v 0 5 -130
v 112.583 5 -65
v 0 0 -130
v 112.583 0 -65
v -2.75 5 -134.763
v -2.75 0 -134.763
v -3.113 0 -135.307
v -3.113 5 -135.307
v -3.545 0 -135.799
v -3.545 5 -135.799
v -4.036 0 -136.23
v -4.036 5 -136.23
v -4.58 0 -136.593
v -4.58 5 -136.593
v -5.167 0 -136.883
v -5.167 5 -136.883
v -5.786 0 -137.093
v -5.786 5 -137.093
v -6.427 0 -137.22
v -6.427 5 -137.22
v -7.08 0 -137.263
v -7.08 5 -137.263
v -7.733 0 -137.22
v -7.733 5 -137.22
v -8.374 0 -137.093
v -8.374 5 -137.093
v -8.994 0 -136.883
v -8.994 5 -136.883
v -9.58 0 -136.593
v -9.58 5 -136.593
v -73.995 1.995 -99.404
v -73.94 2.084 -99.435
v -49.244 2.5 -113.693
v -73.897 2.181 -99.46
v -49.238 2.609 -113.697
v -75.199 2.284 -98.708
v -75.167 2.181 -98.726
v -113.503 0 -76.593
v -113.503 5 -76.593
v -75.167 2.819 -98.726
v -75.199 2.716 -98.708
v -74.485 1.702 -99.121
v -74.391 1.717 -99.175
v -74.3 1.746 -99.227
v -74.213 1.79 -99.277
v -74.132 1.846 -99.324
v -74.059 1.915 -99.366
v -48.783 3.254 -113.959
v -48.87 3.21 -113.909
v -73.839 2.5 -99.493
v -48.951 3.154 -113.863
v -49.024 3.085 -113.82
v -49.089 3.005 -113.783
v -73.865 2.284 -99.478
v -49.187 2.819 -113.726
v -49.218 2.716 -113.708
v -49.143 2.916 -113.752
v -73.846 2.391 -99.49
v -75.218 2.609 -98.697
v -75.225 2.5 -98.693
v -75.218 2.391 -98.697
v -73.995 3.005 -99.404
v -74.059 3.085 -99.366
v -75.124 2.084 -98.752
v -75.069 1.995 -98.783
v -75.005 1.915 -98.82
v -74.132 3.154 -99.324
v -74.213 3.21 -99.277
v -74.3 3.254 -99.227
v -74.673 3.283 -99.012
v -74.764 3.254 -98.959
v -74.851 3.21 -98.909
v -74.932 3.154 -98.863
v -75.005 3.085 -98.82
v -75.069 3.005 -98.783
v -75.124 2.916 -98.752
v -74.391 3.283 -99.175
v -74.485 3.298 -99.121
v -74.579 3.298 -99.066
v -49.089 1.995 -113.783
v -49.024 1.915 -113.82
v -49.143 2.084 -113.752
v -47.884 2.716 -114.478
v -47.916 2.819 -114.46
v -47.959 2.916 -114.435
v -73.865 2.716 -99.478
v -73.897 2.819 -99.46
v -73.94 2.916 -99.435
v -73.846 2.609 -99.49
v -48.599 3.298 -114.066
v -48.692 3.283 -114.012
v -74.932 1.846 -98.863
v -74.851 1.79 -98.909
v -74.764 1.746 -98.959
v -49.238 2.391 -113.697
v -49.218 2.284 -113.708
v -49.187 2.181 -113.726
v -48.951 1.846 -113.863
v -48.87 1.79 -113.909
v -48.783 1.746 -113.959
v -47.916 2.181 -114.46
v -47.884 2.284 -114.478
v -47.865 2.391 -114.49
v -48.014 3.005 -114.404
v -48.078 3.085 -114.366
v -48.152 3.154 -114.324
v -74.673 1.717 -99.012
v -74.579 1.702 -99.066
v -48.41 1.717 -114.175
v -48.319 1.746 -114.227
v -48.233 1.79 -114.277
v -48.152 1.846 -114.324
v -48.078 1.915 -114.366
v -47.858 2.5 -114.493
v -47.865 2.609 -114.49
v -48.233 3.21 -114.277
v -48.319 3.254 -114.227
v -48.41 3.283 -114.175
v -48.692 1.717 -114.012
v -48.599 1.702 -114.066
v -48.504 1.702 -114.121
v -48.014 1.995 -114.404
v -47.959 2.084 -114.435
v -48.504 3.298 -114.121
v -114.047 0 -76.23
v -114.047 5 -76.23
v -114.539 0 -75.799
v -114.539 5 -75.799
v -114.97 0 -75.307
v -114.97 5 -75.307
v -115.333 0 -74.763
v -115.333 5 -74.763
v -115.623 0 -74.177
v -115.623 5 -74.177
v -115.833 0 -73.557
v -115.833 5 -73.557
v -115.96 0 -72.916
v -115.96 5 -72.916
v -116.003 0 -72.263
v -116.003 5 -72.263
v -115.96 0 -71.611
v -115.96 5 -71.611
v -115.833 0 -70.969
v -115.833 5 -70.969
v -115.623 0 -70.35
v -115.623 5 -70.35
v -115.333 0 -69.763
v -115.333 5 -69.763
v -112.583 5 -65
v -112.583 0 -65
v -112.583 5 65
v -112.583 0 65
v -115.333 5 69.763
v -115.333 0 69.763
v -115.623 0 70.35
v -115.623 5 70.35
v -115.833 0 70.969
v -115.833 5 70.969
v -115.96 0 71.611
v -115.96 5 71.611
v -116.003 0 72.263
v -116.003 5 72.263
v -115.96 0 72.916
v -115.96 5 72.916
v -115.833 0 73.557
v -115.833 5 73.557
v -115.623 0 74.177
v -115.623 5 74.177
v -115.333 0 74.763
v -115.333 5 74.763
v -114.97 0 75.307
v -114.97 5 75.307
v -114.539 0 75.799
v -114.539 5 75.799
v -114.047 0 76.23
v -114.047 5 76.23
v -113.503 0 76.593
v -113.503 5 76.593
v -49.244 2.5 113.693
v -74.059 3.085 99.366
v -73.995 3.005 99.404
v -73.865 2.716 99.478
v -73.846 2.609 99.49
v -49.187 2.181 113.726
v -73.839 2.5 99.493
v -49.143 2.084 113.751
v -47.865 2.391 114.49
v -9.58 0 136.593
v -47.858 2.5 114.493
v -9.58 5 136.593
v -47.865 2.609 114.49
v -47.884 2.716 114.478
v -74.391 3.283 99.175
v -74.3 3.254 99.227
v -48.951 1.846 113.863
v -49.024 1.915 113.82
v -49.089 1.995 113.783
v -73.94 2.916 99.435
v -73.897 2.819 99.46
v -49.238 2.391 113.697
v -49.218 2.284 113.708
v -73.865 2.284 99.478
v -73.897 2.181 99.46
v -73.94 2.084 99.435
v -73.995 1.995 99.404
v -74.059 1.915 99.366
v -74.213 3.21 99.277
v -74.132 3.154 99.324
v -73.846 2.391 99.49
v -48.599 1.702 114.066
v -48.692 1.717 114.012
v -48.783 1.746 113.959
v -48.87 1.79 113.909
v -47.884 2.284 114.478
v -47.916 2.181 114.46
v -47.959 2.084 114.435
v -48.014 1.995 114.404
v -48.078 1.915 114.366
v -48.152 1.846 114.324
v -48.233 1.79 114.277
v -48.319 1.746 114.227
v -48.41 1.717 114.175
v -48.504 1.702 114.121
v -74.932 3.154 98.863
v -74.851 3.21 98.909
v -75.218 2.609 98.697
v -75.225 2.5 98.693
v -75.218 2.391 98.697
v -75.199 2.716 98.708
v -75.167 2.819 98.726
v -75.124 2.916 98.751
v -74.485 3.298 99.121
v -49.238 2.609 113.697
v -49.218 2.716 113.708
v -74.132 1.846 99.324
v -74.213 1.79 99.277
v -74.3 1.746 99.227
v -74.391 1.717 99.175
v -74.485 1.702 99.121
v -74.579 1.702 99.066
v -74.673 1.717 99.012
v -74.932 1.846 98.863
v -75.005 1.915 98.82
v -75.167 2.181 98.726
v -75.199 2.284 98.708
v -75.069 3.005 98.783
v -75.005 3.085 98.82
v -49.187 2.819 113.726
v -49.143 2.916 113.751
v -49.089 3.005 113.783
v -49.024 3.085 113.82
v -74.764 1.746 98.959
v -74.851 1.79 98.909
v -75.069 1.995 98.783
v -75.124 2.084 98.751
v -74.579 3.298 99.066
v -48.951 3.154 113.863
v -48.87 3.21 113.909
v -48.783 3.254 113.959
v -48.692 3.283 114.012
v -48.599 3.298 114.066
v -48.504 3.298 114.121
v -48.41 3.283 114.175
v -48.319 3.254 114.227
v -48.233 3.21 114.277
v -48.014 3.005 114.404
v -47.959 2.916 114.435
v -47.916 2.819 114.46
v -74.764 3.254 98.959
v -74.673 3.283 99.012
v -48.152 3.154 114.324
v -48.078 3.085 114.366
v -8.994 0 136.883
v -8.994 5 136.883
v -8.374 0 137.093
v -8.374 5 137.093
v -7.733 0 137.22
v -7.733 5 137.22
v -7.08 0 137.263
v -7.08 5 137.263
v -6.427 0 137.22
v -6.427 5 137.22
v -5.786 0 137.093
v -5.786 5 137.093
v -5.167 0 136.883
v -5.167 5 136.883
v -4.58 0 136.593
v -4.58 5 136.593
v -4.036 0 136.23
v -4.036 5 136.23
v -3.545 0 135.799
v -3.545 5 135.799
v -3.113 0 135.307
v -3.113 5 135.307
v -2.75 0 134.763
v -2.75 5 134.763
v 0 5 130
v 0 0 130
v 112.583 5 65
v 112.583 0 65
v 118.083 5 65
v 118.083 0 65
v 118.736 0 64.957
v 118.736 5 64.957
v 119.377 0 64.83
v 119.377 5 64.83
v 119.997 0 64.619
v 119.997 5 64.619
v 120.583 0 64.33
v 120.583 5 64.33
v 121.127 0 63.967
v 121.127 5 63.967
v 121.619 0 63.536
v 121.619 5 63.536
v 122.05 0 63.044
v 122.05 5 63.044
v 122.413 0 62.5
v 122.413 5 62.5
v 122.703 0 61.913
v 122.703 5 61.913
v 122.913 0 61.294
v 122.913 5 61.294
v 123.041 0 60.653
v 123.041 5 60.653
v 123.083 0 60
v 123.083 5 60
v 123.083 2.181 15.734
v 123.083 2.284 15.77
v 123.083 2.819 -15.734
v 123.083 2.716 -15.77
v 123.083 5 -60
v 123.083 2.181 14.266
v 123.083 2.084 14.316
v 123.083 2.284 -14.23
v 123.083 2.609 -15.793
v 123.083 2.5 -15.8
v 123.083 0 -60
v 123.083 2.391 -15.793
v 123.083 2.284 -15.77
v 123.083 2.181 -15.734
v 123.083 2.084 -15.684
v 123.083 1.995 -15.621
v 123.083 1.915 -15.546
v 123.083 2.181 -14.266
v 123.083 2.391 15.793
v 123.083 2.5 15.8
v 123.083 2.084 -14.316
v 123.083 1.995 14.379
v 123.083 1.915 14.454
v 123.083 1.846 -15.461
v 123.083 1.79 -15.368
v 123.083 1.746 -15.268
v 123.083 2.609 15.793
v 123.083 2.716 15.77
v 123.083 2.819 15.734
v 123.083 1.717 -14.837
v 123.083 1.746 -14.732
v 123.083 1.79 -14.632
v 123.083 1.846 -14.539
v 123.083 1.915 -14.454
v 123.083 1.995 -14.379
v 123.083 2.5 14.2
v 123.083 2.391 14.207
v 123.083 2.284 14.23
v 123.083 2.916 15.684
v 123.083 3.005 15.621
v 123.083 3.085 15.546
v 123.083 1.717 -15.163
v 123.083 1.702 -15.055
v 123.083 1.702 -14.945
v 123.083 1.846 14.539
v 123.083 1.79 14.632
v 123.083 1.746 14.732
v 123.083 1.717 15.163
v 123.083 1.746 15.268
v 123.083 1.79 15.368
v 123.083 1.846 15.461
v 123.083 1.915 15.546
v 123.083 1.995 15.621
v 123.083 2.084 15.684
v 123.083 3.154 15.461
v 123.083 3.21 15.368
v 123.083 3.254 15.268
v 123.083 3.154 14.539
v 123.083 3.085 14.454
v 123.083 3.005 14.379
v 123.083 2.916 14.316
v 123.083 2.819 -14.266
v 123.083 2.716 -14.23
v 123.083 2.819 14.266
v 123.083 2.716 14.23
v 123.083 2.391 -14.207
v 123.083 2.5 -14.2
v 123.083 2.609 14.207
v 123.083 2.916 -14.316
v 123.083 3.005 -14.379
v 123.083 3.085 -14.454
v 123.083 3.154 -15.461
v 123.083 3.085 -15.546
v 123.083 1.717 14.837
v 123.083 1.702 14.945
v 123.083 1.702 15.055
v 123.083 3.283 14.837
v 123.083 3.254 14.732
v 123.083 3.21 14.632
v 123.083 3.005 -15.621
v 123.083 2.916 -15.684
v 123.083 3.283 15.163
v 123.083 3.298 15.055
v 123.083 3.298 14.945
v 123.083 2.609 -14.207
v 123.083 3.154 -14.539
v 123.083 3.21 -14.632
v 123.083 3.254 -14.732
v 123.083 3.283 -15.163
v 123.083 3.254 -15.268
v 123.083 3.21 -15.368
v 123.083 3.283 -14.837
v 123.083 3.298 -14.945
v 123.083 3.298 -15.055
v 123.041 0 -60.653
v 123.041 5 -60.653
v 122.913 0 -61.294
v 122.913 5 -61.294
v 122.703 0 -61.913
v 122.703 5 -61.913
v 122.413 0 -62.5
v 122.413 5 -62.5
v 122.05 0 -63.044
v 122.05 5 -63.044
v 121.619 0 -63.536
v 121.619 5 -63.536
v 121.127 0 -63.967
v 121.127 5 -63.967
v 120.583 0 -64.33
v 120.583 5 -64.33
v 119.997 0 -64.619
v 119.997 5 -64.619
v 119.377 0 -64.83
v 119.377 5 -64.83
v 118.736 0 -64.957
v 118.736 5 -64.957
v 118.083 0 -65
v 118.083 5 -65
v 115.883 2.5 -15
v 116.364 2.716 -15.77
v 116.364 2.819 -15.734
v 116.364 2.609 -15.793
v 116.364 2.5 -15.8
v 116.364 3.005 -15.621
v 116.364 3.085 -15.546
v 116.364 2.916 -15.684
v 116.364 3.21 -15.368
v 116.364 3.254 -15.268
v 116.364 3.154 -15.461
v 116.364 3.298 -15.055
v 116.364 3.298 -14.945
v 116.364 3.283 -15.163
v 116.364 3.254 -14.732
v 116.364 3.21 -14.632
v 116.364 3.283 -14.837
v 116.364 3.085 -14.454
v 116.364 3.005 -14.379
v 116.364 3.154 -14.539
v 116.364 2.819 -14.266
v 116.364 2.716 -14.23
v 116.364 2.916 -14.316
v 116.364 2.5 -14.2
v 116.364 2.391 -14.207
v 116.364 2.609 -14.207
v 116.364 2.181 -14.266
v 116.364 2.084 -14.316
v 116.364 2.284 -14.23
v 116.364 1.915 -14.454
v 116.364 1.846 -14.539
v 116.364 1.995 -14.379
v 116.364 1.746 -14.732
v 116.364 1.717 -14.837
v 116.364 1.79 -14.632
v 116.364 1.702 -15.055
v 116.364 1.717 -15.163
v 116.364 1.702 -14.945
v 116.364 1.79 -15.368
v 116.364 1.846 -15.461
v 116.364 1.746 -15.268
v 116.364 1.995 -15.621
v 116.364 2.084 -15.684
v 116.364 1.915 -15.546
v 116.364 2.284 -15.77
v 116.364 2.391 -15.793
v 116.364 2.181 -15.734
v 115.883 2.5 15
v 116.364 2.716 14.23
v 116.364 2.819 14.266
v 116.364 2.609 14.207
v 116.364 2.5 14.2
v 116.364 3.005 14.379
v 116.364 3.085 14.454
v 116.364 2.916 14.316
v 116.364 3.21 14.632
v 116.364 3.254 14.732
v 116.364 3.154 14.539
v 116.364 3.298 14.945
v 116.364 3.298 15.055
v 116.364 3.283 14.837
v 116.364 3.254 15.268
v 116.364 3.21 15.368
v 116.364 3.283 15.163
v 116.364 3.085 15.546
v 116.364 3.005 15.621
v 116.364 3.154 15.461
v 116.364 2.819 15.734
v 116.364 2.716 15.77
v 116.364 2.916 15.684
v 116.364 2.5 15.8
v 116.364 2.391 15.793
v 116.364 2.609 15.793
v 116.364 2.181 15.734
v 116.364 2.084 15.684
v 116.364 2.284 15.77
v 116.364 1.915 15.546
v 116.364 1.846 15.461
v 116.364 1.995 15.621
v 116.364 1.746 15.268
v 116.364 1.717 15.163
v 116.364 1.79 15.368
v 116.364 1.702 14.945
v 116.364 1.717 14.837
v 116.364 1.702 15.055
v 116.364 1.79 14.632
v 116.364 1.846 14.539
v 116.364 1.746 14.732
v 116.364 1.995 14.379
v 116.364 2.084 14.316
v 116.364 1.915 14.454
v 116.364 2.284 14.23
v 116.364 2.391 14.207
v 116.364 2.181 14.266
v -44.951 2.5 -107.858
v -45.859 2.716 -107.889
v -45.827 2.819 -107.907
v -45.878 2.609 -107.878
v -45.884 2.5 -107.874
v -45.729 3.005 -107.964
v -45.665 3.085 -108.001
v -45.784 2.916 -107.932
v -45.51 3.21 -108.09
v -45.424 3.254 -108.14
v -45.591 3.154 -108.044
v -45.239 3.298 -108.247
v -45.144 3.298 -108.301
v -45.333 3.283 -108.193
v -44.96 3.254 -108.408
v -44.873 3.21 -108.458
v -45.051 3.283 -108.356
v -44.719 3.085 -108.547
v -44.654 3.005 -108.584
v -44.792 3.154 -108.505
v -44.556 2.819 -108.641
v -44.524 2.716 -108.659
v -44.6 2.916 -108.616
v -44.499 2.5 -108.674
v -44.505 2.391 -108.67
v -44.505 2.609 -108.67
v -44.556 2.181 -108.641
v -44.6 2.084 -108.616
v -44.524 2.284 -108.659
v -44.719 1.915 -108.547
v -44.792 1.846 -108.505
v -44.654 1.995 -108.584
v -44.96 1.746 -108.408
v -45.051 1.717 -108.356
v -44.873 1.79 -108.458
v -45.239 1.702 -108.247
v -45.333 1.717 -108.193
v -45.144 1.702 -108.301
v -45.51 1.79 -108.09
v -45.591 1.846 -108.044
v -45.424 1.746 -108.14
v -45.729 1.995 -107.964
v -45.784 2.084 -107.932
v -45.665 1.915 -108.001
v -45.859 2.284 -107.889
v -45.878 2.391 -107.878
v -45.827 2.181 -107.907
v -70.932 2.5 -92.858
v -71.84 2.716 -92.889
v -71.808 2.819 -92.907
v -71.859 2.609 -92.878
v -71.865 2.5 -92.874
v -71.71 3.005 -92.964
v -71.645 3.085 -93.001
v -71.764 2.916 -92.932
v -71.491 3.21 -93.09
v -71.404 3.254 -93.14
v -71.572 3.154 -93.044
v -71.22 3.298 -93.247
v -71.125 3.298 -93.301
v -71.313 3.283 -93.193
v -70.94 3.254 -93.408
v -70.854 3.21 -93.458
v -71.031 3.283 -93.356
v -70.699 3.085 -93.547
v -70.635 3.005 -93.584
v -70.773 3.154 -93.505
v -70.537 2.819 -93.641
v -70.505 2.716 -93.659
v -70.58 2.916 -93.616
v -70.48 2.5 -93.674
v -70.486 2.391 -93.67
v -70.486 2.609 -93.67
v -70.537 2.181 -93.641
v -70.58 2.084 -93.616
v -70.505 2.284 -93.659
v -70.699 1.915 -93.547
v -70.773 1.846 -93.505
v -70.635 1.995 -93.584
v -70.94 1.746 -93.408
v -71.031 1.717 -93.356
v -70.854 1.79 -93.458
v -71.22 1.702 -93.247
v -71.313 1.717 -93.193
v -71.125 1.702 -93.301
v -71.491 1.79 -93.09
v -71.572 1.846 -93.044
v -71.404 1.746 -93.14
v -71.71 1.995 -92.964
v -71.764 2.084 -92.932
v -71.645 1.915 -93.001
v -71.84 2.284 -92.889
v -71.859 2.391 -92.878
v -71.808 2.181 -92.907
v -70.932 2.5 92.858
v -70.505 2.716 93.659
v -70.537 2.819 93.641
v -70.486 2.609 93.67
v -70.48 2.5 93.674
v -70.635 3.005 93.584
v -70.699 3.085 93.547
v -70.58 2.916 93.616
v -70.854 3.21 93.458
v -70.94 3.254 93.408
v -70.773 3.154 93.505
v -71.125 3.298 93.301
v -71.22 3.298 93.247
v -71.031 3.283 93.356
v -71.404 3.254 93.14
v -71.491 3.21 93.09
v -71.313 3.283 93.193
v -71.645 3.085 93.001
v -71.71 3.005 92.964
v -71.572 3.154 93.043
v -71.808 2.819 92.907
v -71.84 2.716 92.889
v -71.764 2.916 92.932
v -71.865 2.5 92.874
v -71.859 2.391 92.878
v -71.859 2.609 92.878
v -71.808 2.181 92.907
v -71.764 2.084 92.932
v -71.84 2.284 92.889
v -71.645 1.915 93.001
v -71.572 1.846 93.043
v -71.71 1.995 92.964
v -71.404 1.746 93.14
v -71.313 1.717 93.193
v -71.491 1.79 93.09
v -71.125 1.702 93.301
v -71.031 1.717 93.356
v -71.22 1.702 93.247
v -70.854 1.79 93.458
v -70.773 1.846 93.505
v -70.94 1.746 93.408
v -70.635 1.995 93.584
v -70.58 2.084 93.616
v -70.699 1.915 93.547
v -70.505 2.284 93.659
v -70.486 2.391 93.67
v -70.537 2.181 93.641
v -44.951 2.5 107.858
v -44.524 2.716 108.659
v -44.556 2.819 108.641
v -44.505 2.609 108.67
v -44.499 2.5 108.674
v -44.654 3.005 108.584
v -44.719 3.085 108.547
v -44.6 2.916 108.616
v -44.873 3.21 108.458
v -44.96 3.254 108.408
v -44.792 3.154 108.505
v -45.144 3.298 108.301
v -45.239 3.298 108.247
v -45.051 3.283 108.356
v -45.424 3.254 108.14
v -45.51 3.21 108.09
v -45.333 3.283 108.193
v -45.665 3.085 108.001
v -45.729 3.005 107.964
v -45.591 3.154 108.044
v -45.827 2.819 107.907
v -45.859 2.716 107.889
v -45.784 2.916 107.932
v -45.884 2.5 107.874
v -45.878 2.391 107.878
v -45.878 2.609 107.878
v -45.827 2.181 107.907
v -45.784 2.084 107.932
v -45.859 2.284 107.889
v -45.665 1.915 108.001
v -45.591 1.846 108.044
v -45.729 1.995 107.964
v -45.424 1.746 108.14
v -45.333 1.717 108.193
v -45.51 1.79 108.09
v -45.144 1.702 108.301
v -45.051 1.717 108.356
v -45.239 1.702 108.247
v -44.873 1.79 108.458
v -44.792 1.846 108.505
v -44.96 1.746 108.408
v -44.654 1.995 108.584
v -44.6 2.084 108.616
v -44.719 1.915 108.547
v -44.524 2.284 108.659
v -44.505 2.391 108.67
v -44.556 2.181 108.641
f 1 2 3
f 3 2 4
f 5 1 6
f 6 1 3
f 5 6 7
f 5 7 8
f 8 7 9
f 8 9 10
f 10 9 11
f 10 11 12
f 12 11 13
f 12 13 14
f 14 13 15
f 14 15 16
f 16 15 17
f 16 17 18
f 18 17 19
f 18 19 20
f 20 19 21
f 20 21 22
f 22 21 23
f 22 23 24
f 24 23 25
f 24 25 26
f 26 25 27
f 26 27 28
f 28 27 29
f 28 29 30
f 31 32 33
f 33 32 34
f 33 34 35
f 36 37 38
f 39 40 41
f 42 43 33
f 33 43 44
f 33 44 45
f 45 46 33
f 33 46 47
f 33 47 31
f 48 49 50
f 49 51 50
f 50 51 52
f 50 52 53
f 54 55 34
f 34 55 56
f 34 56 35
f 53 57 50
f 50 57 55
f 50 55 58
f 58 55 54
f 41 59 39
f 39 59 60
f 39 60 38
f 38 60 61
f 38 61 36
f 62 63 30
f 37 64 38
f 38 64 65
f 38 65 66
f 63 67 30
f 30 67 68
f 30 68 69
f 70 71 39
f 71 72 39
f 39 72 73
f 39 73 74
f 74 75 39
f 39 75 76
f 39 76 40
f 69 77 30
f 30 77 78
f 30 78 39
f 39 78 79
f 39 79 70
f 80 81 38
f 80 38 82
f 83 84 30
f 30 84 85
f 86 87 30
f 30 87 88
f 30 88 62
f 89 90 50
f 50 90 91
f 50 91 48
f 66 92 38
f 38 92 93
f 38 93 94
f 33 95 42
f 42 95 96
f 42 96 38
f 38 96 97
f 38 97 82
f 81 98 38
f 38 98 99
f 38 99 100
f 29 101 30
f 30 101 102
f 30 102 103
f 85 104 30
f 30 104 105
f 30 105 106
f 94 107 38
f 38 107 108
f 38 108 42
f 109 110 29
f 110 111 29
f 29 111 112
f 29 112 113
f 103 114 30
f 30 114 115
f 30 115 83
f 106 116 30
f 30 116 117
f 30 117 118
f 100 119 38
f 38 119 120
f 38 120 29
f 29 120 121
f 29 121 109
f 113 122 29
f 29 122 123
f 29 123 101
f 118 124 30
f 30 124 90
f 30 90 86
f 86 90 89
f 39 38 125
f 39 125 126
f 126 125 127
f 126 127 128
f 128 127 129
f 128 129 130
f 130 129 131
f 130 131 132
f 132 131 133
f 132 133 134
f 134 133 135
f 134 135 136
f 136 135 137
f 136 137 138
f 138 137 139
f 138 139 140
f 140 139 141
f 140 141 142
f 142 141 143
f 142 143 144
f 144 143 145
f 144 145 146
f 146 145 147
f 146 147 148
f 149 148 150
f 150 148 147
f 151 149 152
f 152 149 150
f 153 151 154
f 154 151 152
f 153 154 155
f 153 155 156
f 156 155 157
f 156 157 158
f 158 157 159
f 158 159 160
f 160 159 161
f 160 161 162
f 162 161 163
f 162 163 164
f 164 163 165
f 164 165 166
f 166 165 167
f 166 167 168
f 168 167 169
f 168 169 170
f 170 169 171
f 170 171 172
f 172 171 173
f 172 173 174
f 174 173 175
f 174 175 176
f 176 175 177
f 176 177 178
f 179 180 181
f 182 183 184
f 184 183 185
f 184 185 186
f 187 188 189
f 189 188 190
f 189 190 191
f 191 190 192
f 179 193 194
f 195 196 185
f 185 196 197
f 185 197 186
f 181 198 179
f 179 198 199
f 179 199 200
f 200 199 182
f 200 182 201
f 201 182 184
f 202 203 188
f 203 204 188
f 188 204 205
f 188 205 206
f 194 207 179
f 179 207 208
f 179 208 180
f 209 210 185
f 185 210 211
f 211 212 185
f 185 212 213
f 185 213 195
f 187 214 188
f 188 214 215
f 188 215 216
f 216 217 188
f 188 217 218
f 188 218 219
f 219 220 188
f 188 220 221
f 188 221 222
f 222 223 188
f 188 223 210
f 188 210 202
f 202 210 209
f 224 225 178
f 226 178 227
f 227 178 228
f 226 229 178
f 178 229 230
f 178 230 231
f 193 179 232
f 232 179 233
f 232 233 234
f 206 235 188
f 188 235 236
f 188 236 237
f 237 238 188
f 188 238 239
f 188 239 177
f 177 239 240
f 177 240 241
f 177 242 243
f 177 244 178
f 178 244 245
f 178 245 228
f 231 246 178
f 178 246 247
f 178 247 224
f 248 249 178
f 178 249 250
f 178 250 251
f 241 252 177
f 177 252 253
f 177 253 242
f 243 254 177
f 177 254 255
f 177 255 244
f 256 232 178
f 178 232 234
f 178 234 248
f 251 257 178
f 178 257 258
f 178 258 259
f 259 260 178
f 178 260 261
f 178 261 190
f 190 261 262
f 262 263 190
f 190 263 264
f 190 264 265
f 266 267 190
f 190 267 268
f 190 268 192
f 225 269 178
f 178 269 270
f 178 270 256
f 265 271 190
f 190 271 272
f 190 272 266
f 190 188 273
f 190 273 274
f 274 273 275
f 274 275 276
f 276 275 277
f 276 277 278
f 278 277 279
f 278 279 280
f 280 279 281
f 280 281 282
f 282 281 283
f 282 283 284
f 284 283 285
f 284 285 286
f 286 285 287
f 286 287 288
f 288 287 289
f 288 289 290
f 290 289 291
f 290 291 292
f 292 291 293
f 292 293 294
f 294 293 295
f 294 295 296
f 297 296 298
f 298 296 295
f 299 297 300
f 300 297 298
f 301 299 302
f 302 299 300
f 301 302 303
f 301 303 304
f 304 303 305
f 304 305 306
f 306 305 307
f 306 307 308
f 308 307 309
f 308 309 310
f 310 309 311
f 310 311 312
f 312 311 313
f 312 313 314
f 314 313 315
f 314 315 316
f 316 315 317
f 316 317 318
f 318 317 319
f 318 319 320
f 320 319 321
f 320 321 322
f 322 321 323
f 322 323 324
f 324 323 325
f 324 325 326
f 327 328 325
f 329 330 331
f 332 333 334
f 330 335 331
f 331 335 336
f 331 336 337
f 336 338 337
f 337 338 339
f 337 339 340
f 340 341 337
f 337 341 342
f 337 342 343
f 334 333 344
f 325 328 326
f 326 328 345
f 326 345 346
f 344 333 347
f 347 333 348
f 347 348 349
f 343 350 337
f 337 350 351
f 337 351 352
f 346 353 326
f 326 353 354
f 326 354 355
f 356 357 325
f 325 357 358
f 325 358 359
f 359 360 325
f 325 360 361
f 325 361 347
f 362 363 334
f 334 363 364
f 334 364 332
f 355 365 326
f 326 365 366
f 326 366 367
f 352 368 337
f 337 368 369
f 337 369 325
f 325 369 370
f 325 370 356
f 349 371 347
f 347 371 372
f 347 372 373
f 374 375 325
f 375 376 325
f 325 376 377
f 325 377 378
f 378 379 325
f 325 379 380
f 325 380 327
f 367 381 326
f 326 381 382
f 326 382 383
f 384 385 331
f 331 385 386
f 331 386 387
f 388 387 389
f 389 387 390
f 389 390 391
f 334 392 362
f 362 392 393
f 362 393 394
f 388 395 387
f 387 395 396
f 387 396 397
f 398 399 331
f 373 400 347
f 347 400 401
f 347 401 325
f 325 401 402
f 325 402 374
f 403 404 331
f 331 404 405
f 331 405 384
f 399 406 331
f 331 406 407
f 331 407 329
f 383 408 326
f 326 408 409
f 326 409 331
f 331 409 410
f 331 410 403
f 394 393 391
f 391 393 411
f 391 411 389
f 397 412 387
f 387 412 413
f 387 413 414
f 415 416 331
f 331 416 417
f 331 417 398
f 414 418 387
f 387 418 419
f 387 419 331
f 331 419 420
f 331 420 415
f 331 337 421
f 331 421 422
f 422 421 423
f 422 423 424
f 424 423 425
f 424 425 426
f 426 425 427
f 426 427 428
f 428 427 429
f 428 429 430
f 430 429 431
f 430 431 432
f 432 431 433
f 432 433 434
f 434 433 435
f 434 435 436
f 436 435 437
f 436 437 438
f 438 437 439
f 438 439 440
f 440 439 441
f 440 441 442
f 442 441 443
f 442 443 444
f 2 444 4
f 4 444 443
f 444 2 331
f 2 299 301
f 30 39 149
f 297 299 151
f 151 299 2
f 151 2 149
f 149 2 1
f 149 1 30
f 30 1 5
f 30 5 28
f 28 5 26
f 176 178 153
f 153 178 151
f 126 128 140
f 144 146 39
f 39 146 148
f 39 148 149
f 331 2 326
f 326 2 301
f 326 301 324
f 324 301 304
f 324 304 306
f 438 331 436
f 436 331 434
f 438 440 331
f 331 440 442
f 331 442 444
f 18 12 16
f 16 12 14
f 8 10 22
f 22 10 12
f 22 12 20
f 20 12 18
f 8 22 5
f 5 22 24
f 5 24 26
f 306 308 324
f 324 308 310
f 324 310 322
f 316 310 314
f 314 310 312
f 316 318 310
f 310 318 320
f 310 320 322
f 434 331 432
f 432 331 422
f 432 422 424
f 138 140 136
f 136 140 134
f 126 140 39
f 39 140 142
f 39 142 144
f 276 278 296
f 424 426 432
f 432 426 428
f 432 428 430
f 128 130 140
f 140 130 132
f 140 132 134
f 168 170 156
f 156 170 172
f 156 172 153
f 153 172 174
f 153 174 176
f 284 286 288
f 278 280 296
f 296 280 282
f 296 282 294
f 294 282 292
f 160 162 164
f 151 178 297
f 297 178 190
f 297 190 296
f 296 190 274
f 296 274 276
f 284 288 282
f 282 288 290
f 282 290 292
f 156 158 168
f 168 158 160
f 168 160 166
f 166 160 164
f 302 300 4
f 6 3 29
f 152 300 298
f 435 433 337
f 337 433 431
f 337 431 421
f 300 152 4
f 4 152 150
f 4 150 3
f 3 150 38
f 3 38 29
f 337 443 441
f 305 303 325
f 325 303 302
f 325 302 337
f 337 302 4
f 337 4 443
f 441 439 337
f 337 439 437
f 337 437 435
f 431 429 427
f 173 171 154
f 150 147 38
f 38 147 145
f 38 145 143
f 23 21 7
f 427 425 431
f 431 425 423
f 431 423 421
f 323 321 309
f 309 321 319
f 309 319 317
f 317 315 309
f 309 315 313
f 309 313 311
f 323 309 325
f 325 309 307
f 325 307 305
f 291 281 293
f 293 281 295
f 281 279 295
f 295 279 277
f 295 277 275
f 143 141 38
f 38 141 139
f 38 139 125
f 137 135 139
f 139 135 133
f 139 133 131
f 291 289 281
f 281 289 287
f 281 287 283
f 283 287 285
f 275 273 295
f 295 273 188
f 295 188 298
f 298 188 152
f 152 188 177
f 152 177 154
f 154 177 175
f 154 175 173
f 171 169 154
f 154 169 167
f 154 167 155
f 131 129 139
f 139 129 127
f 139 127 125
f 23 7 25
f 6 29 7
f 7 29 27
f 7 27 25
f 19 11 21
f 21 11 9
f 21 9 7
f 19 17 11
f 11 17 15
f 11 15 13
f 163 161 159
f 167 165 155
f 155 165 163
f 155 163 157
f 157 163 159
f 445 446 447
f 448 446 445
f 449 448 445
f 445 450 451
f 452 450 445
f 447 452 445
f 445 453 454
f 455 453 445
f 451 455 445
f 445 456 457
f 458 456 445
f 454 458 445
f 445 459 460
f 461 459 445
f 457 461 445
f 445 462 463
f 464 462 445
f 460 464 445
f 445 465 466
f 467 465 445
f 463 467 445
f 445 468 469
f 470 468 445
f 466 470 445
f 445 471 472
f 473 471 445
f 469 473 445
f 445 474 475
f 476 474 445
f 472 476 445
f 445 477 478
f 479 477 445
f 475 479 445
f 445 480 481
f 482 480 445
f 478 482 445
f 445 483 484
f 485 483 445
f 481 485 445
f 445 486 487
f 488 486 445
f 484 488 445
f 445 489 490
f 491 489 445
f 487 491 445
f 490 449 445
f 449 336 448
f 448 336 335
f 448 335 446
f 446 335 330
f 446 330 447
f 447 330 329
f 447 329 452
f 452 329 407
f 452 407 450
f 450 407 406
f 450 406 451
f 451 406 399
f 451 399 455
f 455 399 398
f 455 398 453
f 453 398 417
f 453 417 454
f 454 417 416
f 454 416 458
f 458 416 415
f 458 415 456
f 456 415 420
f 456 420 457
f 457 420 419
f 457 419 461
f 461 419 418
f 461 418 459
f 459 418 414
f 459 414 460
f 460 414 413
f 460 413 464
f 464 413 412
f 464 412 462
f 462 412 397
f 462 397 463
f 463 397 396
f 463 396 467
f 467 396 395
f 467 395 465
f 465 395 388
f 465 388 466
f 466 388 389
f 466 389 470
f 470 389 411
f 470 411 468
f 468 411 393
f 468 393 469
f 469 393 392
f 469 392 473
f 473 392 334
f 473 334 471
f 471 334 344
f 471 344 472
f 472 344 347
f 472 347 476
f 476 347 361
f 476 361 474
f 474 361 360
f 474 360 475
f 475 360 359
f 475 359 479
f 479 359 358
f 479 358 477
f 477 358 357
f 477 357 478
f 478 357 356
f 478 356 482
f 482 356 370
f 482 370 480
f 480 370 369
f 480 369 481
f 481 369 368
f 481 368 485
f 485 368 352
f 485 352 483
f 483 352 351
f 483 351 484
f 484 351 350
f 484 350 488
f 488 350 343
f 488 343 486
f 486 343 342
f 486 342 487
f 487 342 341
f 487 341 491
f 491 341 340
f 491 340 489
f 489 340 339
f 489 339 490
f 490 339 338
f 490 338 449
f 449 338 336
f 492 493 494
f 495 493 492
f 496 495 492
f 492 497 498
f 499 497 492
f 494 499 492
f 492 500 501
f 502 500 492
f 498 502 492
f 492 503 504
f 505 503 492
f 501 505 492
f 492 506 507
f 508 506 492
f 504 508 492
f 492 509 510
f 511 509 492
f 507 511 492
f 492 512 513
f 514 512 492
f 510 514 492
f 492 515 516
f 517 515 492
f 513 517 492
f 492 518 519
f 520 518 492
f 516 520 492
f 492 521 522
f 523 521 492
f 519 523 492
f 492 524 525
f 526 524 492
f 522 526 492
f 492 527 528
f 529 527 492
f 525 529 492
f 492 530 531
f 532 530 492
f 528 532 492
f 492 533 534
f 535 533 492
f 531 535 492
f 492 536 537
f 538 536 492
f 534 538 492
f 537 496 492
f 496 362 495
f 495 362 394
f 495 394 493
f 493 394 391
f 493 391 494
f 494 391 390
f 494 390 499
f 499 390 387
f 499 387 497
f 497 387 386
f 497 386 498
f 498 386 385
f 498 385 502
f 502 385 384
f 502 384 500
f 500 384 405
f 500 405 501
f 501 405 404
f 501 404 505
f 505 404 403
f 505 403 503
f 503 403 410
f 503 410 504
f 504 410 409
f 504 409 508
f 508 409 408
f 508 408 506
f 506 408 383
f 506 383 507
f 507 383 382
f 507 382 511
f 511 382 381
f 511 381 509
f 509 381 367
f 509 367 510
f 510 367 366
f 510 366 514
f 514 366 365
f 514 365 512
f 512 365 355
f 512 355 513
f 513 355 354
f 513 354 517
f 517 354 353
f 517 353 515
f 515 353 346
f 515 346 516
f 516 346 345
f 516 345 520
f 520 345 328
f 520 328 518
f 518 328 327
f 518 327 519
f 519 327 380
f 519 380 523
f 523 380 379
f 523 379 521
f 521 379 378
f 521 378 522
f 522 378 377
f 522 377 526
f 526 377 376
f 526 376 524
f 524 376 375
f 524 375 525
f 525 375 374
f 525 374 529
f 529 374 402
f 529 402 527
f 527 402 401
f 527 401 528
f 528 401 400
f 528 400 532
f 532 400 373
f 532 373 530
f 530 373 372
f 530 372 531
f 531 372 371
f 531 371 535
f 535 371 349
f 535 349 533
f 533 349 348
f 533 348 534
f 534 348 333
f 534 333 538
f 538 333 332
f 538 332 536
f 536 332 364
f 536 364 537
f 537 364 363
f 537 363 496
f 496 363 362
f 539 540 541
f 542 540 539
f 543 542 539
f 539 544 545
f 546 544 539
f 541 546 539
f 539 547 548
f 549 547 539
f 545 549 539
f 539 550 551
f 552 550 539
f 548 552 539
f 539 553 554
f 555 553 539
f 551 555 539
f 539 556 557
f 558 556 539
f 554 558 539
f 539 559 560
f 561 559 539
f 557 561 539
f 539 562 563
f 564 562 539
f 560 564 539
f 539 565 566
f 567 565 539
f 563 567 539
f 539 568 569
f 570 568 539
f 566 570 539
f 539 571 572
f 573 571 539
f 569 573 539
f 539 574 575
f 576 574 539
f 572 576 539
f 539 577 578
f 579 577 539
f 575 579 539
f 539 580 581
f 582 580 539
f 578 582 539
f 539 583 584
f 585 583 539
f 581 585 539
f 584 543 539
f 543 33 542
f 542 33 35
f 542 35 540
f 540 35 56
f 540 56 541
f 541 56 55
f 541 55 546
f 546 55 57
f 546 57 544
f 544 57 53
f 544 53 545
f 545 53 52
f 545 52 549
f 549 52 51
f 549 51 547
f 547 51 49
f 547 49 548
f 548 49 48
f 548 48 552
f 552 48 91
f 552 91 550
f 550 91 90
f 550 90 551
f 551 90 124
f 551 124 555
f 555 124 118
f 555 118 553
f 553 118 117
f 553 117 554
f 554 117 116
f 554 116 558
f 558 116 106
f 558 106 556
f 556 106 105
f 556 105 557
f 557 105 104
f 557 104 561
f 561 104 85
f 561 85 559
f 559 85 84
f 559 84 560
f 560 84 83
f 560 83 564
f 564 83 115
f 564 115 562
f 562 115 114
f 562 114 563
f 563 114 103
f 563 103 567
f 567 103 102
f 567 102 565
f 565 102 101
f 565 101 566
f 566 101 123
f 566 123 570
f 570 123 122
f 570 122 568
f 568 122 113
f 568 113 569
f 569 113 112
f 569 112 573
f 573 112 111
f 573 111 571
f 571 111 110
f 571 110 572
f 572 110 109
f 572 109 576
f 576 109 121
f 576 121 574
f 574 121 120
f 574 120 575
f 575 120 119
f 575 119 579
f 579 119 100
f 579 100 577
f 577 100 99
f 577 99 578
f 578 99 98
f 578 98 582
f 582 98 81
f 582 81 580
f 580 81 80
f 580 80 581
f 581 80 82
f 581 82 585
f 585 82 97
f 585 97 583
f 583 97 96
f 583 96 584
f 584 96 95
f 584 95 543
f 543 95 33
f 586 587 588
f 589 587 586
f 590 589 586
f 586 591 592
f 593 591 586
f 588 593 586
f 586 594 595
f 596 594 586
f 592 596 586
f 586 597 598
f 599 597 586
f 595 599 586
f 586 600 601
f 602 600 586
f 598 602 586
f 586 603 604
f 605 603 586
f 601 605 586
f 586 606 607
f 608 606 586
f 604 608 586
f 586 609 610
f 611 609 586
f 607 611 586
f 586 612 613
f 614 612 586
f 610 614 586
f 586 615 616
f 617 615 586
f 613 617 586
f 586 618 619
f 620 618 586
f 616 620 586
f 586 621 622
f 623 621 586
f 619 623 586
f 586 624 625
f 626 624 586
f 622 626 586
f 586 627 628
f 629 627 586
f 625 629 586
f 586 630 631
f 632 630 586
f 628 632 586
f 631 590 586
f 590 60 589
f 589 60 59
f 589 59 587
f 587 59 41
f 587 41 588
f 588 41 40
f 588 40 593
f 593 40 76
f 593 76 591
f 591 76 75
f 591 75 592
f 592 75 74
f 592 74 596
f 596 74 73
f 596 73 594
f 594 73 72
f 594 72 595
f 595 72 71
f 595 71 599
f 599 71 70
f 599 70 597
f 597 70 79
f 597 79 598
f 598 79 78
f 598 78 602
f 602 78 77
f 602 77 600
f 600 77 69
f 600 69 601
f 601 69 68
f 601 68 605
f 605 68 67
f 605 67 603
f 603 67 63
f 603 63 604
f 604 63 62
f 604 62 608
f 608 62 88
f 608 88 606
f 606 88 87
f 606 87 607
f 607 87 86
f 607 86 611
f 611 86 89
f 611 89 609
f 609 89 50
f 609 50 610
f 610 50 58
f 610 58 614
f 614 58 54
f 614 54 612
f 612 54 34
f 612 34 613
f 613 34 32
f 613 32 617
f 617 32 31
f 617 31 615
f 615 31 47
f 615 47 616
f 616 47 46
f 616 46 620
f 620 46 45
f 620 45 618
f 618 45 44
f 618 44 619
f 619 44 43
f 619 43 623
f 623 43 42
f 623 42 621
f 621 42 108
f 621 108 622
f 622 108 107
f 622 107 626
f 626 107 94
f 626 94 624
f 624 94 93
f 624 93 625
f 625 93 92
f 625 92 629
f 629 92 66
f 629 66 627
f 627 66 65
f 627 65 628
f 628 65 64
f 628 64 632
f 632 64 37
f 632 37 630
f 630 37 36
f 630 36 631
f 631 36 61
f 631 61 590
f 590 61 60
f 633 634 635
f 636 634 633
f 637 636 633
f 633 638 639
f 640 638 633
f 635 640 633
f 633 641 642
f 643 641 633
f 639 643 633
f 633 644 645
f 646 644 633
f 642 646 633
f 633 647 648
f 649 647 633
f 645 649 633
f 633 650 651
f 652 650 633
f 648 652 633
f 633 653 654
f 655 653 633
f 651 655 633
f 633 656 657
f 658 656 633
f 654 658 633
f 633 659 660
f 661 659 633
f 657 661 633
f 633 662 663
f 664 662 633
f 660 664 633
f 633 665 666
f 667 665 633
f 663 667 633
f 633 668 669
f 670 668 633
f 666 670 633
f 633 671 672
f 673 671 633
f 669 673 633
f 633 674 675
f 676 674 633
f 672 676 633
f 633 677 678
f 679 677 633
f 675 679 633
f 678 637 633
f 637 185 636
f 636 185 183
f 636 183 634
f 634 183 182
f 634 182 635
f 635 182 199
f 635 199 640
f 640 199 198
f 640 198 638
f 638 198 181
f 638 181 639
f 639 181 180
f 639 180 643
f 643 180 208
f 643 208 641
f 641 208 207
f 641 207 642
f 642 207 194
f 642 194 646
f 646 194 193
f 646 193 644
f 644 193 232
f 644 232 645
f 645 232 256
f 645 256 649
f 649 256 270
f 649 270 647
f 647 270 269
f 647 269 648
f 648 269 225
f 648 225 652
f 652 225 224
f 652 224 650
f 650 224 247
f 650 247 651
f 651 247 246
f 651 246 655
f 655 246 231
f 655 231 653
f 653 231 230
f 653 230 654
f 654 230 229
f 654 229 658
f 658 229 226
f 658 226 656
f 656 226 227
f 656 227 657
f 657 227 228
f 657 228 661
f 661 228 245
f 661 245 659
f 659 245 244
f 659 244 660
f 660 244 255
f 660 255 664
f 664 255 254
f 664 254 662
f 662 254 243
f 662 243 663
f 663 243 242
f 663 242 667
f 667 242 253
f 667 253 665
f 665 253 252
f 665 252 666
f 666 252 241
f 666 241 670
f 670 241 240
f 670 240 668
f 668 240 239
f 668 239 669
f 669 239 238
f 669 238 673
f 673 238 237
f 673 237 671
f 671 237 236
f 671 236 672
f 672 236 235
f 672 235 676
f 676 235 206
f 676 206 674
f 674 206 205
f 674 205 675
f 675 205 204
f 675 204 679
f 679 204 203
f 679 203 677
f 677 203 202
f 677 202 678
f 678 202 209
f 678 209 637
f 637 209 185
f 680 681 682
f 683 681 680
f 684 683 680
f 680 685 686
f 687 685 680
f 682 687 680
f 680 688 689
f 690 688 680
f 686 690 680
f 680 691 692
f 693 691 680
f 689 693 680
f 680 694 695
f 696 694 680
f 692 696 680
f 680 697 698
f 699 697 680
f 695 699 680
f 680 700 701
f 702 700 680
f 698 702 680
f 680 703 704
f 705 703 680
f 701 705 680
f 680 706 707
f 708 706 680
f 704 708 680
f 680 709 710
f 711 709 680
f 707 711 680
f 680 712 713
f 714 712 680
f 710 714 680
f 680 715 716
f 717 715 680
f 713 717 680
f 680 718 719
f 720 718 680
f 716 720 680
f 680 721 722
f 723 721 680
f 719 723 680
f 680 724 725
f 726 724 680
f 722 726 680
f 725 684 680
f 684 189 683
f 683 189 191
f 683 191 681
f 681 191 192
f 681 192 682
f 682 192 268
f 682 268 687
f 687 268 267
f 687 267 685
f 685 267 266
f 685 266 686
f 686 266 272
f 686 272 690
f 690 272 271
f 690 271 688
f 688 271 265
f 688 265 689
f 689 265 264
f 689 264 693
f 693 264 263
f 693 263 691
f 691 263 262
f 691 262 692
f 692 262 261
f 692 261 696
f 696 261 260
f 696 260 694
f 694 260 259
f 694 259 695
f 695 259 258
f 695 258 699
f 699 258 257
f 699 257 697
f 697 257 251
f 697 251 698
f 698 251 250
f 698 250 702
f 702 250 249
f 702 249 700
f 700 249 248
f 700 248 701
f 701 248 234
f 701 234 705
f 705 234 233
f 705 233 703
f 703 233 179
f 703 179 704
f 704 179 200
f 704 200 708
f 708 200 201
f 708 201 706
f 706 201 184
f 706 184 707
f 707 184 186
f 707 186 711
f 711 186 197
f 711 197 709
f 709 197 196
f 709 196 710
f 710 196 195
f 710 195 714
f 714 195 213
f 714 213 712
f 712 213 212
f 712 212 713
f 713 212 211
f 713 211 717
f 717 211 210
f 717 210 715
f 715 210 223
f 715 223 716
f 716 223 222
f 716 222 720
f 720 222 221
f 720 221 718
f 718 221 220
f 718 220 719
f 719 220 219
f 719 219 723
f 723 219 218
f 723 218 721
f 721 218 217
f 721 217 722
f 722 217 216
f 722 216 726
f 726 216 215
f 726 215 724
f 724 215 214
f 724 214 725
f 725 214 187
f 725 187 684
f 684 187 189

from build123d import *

# Parameters (mm, degrees)
EXTRUDE_1_DEPTH                  = 5
HOLE_WIZARD_M2_1_D               = 1.6
HOLE_WIZARD_M2_1_DEPTH           = 6.719311505
HOLE_WIZARD_M2_1_TIP             = 0.480688495
HOLE_WIZARD_M2_2_D               = 1.6
HOLE_WIZARD_M2_2_DEPTH           = 6.719311505
HOLE_WIZARD_M2_2_TIP             = 0.480688495
HOLE_WIZARD_M2_2_ON_FACE_2_D     = 1.6
HOLE_WIZARD_M2_2_ON_FACE_2_DEPTH = 6.719311505
HOLE_WIZARD_M2_2_ON_FACE_2_TIP   = 0.480688495
HOLE_WIZARD_M2_2_ON_FACE_3_D     = 1.6
HOLE_WIZARD_M2_2_ON_FACE_3_DEPTH = 6.719311505
HOLE_WIZARD_M2_2_ON_FACE_3_TIP   = 0.480688495
HOLE_WIZARD_M2_2_ON_FACE_4_D     = 1.6
HOLE_WIZARD_M2_2_ON_FACE_4_DEPTH = 6.719311505
HOLE_WIZARD_M2_2_ON_FACE_4_TIP   = 0.480688495


with BuildPart() as part:
    # 草图1 → 凸台-拉伸1 (new body)
    with BuildSketch(Plane(origin=(0, 0, 0), x_dir=(1, 0, 0), z_dir=(0, 1, 0))):
        Polygon((-112.583302492, 65), (-112.583302492, -65), (0, -130), (112.583302492, -65), (112.583302492, 65), (0, 130), align=None)
        with BuildLine():
            Line((0, -130), (-112.583302492, -65))
            Line((-112.583302492, -65), (-115.333302492, -69.763139721))
            ThreePointArc((-115.333302492, -69.763139721), (-115.832804605, -73.557234946), (-113.503175473, -76.59326674))
            Line((-113.503175473, -76.59326674), (-9.580127019, -136.59326674))
            ThreePointArc((-9.580127019, -136.59326674), (-5.786031793, -137.092768852), (-2.75, -134.763139721))
            Line((-2.75, -134.763139721), (0, -130))
        make_face()
        with BuildLine():
            Line((-115.333302492, 69.763139721), (-112.583302492, 65))
            Line((-112.583302492, 65), (0, 130))
            Line((0, 130), (-2.75, 134.763139721))
            ThreePointArc((-2.75, 134.763139721), (-5.786031793, 137.092768852), (-9.580127019, 136.59326674))
            Line((-9.580127019, 136.59326674), (-113.503175473, 76.59326674))
            ThreePointArc((-113.503175473, 76.59326674), (-115.832804605, 73.557234946), (-115.333302492, 69.763139721))
        make_face()
        with BuildLine():
            Line((112.583302492, 65), (112.583302492, -65))
            Line((112.583302492, -65), (118.083302492, -65))
            ThreePointArc((118.083302492, -65), (121.618836398, -63.535533906), (123.083302492, -60))
            Line((123.083302492, -60), (123.083302492, 60))
            ThreePointArc((123.083302492, 60), (121.618836398, 63.535533906), (118.083302492, 65))
            Line((118.083302492, 65), (112.583302492, 65))
        make_face()
    extrude(amount=EXTRUDE_1_DEPTH)

    # M2 螺纹孔1
    with Locations(Plane(origin=(123.083302492, 0, 0), x_dir=(0, 0, -1), z_dir=(1, 0, 0))):
        with Locations((15, 2.5), (-15, 2.5)):
            Hole(HOLE_WIZARD_M2_1_D / 2, depth=HOLE_WIZARD_M2_1_DEPTH)
            with Locations((0, 0, -(HOLE_WIZARD_M2_1_DEPTH + HOLE_WIZARD_M2_1_TIP / 2))):  # 118° drill point
                Cone(0, HOLE_WIZARD_M2_1_D / 2, HOLE_WIZARD_M2_1_TIP, mode=Mode.SUBTRACT)

    # M2 螺纹孔2
    with Locations(Plane(origin=(-48.551270189, 2.5, 114.09326674), x_dir=(0.866025403784, 0, 0.5), z_dir=(-0.5, 0, 0.866025403784))):
        with Locations((0, 0)):
            Hole(HOLE_WIZARD_M2_2_D / 2, depth=HOLE_WIZARD_M2_2_DEPTH)
            with Locations((0, 0, -(HOLE_WIZARD_M2_2_DEPTH + HOLE_WIZARD_M2_2_TIP / 2))):  # 118° drill point
                Cone(0, HOLE_WIZARD_M2_2_D / 2, HOLE_WIZARD_M2_2_TIP, mode=Mode.SUBTRACT)

    # M2 螺纹孔2 on face 2
    with Locations(Plane(origin=(-74.532032303, 2.5, 99.09326674), x_dir=(0.866025302838, 0, 0.500000174844), z_dir=(-0.500000174844, 0, 0.866025302838))):
        with Locations((0, 0)):
            Hole(HOLE_WIZARD_M2_2_ON_FACE_2_D / 2, depth=HOLE_WIZARD_M2_2_ON_FACE_2_DEPTH)
            with Locations((0, 0, -(HOLE_WIZARD_M2_2_ON_FACE_2_DEPTH + HOLE_WIZARD_M2_2_ON_FACE_2_TIP / 2))):  # 118° drill point
                Cone(0, HOLE_WIZARD_M2_2_ON_FACE_2_D / 2, HOLE_WIZARD_M2_2_ON_FACE_2_TIP, mode=Mode.SUBTRACT)

    # M2 螺纹孔2 on face 3
    with Locations(Plane(origin=(-74.532032303, 2.5, -99.09326674), x_dir=(-0.866025302838, 0, 0.500000174844), z_dir=(-0.500000174844, 0, -0.866025302838))):
        with Locations((0, 0)):
            Hole(HOLE_WIZARD_M2_2_ON_FACE_3_D / 2, depth=HOLE_WIZARD_M2_2_ON_FACE_3_DEPTH)
            with Locations((0, 0, -(HOLE_WIZARD_M2_2_ON_FACE_3_DEPTH + HOLE_WIZARD_M2_2_ON_FACE_3_TIP / 2))):  # 118° drill point
                Cone(0, HOLE_WIZARD_M2_2_ON_FACE_3_D / 2, HOLE_WIZARD_M2_2_ON_FACE_3_TIP, mode=Mode.SUBTRACT)

    # M2 螺纹孔2 on face 4
    with Locations(Plane(origin=(-48.551270189, 2.5, -114.09326674), x_dir=(-0.866025302838, 0, 0.500000174844), z_dir=(-0.500000174844, 0, -0.866025302838))):
        with Locations((0, 0)):
            Hole(HOLE_WIZARD_M2_2_ON_FACE_4_D / 2, depth=HOLE_WIZARD_M2_2_ON_FACE_4_DEPTH)
            with Locations((0, 0, -(HOLE_WIZARD_M2_2_ON_FACE_4_DEPTH + HOLE_WIZARD_M2_2_ON_FACE_4_TIP / 2))):  # 118° drill point
                Cone(0, HOLE_WIZARD_M2_2_ON_FACE_4_D / 2, HOLE_WIZARD_M2_2_ON_FACE_4_TIP, mode=Mode.SUBTRACT)


solid = part.part
